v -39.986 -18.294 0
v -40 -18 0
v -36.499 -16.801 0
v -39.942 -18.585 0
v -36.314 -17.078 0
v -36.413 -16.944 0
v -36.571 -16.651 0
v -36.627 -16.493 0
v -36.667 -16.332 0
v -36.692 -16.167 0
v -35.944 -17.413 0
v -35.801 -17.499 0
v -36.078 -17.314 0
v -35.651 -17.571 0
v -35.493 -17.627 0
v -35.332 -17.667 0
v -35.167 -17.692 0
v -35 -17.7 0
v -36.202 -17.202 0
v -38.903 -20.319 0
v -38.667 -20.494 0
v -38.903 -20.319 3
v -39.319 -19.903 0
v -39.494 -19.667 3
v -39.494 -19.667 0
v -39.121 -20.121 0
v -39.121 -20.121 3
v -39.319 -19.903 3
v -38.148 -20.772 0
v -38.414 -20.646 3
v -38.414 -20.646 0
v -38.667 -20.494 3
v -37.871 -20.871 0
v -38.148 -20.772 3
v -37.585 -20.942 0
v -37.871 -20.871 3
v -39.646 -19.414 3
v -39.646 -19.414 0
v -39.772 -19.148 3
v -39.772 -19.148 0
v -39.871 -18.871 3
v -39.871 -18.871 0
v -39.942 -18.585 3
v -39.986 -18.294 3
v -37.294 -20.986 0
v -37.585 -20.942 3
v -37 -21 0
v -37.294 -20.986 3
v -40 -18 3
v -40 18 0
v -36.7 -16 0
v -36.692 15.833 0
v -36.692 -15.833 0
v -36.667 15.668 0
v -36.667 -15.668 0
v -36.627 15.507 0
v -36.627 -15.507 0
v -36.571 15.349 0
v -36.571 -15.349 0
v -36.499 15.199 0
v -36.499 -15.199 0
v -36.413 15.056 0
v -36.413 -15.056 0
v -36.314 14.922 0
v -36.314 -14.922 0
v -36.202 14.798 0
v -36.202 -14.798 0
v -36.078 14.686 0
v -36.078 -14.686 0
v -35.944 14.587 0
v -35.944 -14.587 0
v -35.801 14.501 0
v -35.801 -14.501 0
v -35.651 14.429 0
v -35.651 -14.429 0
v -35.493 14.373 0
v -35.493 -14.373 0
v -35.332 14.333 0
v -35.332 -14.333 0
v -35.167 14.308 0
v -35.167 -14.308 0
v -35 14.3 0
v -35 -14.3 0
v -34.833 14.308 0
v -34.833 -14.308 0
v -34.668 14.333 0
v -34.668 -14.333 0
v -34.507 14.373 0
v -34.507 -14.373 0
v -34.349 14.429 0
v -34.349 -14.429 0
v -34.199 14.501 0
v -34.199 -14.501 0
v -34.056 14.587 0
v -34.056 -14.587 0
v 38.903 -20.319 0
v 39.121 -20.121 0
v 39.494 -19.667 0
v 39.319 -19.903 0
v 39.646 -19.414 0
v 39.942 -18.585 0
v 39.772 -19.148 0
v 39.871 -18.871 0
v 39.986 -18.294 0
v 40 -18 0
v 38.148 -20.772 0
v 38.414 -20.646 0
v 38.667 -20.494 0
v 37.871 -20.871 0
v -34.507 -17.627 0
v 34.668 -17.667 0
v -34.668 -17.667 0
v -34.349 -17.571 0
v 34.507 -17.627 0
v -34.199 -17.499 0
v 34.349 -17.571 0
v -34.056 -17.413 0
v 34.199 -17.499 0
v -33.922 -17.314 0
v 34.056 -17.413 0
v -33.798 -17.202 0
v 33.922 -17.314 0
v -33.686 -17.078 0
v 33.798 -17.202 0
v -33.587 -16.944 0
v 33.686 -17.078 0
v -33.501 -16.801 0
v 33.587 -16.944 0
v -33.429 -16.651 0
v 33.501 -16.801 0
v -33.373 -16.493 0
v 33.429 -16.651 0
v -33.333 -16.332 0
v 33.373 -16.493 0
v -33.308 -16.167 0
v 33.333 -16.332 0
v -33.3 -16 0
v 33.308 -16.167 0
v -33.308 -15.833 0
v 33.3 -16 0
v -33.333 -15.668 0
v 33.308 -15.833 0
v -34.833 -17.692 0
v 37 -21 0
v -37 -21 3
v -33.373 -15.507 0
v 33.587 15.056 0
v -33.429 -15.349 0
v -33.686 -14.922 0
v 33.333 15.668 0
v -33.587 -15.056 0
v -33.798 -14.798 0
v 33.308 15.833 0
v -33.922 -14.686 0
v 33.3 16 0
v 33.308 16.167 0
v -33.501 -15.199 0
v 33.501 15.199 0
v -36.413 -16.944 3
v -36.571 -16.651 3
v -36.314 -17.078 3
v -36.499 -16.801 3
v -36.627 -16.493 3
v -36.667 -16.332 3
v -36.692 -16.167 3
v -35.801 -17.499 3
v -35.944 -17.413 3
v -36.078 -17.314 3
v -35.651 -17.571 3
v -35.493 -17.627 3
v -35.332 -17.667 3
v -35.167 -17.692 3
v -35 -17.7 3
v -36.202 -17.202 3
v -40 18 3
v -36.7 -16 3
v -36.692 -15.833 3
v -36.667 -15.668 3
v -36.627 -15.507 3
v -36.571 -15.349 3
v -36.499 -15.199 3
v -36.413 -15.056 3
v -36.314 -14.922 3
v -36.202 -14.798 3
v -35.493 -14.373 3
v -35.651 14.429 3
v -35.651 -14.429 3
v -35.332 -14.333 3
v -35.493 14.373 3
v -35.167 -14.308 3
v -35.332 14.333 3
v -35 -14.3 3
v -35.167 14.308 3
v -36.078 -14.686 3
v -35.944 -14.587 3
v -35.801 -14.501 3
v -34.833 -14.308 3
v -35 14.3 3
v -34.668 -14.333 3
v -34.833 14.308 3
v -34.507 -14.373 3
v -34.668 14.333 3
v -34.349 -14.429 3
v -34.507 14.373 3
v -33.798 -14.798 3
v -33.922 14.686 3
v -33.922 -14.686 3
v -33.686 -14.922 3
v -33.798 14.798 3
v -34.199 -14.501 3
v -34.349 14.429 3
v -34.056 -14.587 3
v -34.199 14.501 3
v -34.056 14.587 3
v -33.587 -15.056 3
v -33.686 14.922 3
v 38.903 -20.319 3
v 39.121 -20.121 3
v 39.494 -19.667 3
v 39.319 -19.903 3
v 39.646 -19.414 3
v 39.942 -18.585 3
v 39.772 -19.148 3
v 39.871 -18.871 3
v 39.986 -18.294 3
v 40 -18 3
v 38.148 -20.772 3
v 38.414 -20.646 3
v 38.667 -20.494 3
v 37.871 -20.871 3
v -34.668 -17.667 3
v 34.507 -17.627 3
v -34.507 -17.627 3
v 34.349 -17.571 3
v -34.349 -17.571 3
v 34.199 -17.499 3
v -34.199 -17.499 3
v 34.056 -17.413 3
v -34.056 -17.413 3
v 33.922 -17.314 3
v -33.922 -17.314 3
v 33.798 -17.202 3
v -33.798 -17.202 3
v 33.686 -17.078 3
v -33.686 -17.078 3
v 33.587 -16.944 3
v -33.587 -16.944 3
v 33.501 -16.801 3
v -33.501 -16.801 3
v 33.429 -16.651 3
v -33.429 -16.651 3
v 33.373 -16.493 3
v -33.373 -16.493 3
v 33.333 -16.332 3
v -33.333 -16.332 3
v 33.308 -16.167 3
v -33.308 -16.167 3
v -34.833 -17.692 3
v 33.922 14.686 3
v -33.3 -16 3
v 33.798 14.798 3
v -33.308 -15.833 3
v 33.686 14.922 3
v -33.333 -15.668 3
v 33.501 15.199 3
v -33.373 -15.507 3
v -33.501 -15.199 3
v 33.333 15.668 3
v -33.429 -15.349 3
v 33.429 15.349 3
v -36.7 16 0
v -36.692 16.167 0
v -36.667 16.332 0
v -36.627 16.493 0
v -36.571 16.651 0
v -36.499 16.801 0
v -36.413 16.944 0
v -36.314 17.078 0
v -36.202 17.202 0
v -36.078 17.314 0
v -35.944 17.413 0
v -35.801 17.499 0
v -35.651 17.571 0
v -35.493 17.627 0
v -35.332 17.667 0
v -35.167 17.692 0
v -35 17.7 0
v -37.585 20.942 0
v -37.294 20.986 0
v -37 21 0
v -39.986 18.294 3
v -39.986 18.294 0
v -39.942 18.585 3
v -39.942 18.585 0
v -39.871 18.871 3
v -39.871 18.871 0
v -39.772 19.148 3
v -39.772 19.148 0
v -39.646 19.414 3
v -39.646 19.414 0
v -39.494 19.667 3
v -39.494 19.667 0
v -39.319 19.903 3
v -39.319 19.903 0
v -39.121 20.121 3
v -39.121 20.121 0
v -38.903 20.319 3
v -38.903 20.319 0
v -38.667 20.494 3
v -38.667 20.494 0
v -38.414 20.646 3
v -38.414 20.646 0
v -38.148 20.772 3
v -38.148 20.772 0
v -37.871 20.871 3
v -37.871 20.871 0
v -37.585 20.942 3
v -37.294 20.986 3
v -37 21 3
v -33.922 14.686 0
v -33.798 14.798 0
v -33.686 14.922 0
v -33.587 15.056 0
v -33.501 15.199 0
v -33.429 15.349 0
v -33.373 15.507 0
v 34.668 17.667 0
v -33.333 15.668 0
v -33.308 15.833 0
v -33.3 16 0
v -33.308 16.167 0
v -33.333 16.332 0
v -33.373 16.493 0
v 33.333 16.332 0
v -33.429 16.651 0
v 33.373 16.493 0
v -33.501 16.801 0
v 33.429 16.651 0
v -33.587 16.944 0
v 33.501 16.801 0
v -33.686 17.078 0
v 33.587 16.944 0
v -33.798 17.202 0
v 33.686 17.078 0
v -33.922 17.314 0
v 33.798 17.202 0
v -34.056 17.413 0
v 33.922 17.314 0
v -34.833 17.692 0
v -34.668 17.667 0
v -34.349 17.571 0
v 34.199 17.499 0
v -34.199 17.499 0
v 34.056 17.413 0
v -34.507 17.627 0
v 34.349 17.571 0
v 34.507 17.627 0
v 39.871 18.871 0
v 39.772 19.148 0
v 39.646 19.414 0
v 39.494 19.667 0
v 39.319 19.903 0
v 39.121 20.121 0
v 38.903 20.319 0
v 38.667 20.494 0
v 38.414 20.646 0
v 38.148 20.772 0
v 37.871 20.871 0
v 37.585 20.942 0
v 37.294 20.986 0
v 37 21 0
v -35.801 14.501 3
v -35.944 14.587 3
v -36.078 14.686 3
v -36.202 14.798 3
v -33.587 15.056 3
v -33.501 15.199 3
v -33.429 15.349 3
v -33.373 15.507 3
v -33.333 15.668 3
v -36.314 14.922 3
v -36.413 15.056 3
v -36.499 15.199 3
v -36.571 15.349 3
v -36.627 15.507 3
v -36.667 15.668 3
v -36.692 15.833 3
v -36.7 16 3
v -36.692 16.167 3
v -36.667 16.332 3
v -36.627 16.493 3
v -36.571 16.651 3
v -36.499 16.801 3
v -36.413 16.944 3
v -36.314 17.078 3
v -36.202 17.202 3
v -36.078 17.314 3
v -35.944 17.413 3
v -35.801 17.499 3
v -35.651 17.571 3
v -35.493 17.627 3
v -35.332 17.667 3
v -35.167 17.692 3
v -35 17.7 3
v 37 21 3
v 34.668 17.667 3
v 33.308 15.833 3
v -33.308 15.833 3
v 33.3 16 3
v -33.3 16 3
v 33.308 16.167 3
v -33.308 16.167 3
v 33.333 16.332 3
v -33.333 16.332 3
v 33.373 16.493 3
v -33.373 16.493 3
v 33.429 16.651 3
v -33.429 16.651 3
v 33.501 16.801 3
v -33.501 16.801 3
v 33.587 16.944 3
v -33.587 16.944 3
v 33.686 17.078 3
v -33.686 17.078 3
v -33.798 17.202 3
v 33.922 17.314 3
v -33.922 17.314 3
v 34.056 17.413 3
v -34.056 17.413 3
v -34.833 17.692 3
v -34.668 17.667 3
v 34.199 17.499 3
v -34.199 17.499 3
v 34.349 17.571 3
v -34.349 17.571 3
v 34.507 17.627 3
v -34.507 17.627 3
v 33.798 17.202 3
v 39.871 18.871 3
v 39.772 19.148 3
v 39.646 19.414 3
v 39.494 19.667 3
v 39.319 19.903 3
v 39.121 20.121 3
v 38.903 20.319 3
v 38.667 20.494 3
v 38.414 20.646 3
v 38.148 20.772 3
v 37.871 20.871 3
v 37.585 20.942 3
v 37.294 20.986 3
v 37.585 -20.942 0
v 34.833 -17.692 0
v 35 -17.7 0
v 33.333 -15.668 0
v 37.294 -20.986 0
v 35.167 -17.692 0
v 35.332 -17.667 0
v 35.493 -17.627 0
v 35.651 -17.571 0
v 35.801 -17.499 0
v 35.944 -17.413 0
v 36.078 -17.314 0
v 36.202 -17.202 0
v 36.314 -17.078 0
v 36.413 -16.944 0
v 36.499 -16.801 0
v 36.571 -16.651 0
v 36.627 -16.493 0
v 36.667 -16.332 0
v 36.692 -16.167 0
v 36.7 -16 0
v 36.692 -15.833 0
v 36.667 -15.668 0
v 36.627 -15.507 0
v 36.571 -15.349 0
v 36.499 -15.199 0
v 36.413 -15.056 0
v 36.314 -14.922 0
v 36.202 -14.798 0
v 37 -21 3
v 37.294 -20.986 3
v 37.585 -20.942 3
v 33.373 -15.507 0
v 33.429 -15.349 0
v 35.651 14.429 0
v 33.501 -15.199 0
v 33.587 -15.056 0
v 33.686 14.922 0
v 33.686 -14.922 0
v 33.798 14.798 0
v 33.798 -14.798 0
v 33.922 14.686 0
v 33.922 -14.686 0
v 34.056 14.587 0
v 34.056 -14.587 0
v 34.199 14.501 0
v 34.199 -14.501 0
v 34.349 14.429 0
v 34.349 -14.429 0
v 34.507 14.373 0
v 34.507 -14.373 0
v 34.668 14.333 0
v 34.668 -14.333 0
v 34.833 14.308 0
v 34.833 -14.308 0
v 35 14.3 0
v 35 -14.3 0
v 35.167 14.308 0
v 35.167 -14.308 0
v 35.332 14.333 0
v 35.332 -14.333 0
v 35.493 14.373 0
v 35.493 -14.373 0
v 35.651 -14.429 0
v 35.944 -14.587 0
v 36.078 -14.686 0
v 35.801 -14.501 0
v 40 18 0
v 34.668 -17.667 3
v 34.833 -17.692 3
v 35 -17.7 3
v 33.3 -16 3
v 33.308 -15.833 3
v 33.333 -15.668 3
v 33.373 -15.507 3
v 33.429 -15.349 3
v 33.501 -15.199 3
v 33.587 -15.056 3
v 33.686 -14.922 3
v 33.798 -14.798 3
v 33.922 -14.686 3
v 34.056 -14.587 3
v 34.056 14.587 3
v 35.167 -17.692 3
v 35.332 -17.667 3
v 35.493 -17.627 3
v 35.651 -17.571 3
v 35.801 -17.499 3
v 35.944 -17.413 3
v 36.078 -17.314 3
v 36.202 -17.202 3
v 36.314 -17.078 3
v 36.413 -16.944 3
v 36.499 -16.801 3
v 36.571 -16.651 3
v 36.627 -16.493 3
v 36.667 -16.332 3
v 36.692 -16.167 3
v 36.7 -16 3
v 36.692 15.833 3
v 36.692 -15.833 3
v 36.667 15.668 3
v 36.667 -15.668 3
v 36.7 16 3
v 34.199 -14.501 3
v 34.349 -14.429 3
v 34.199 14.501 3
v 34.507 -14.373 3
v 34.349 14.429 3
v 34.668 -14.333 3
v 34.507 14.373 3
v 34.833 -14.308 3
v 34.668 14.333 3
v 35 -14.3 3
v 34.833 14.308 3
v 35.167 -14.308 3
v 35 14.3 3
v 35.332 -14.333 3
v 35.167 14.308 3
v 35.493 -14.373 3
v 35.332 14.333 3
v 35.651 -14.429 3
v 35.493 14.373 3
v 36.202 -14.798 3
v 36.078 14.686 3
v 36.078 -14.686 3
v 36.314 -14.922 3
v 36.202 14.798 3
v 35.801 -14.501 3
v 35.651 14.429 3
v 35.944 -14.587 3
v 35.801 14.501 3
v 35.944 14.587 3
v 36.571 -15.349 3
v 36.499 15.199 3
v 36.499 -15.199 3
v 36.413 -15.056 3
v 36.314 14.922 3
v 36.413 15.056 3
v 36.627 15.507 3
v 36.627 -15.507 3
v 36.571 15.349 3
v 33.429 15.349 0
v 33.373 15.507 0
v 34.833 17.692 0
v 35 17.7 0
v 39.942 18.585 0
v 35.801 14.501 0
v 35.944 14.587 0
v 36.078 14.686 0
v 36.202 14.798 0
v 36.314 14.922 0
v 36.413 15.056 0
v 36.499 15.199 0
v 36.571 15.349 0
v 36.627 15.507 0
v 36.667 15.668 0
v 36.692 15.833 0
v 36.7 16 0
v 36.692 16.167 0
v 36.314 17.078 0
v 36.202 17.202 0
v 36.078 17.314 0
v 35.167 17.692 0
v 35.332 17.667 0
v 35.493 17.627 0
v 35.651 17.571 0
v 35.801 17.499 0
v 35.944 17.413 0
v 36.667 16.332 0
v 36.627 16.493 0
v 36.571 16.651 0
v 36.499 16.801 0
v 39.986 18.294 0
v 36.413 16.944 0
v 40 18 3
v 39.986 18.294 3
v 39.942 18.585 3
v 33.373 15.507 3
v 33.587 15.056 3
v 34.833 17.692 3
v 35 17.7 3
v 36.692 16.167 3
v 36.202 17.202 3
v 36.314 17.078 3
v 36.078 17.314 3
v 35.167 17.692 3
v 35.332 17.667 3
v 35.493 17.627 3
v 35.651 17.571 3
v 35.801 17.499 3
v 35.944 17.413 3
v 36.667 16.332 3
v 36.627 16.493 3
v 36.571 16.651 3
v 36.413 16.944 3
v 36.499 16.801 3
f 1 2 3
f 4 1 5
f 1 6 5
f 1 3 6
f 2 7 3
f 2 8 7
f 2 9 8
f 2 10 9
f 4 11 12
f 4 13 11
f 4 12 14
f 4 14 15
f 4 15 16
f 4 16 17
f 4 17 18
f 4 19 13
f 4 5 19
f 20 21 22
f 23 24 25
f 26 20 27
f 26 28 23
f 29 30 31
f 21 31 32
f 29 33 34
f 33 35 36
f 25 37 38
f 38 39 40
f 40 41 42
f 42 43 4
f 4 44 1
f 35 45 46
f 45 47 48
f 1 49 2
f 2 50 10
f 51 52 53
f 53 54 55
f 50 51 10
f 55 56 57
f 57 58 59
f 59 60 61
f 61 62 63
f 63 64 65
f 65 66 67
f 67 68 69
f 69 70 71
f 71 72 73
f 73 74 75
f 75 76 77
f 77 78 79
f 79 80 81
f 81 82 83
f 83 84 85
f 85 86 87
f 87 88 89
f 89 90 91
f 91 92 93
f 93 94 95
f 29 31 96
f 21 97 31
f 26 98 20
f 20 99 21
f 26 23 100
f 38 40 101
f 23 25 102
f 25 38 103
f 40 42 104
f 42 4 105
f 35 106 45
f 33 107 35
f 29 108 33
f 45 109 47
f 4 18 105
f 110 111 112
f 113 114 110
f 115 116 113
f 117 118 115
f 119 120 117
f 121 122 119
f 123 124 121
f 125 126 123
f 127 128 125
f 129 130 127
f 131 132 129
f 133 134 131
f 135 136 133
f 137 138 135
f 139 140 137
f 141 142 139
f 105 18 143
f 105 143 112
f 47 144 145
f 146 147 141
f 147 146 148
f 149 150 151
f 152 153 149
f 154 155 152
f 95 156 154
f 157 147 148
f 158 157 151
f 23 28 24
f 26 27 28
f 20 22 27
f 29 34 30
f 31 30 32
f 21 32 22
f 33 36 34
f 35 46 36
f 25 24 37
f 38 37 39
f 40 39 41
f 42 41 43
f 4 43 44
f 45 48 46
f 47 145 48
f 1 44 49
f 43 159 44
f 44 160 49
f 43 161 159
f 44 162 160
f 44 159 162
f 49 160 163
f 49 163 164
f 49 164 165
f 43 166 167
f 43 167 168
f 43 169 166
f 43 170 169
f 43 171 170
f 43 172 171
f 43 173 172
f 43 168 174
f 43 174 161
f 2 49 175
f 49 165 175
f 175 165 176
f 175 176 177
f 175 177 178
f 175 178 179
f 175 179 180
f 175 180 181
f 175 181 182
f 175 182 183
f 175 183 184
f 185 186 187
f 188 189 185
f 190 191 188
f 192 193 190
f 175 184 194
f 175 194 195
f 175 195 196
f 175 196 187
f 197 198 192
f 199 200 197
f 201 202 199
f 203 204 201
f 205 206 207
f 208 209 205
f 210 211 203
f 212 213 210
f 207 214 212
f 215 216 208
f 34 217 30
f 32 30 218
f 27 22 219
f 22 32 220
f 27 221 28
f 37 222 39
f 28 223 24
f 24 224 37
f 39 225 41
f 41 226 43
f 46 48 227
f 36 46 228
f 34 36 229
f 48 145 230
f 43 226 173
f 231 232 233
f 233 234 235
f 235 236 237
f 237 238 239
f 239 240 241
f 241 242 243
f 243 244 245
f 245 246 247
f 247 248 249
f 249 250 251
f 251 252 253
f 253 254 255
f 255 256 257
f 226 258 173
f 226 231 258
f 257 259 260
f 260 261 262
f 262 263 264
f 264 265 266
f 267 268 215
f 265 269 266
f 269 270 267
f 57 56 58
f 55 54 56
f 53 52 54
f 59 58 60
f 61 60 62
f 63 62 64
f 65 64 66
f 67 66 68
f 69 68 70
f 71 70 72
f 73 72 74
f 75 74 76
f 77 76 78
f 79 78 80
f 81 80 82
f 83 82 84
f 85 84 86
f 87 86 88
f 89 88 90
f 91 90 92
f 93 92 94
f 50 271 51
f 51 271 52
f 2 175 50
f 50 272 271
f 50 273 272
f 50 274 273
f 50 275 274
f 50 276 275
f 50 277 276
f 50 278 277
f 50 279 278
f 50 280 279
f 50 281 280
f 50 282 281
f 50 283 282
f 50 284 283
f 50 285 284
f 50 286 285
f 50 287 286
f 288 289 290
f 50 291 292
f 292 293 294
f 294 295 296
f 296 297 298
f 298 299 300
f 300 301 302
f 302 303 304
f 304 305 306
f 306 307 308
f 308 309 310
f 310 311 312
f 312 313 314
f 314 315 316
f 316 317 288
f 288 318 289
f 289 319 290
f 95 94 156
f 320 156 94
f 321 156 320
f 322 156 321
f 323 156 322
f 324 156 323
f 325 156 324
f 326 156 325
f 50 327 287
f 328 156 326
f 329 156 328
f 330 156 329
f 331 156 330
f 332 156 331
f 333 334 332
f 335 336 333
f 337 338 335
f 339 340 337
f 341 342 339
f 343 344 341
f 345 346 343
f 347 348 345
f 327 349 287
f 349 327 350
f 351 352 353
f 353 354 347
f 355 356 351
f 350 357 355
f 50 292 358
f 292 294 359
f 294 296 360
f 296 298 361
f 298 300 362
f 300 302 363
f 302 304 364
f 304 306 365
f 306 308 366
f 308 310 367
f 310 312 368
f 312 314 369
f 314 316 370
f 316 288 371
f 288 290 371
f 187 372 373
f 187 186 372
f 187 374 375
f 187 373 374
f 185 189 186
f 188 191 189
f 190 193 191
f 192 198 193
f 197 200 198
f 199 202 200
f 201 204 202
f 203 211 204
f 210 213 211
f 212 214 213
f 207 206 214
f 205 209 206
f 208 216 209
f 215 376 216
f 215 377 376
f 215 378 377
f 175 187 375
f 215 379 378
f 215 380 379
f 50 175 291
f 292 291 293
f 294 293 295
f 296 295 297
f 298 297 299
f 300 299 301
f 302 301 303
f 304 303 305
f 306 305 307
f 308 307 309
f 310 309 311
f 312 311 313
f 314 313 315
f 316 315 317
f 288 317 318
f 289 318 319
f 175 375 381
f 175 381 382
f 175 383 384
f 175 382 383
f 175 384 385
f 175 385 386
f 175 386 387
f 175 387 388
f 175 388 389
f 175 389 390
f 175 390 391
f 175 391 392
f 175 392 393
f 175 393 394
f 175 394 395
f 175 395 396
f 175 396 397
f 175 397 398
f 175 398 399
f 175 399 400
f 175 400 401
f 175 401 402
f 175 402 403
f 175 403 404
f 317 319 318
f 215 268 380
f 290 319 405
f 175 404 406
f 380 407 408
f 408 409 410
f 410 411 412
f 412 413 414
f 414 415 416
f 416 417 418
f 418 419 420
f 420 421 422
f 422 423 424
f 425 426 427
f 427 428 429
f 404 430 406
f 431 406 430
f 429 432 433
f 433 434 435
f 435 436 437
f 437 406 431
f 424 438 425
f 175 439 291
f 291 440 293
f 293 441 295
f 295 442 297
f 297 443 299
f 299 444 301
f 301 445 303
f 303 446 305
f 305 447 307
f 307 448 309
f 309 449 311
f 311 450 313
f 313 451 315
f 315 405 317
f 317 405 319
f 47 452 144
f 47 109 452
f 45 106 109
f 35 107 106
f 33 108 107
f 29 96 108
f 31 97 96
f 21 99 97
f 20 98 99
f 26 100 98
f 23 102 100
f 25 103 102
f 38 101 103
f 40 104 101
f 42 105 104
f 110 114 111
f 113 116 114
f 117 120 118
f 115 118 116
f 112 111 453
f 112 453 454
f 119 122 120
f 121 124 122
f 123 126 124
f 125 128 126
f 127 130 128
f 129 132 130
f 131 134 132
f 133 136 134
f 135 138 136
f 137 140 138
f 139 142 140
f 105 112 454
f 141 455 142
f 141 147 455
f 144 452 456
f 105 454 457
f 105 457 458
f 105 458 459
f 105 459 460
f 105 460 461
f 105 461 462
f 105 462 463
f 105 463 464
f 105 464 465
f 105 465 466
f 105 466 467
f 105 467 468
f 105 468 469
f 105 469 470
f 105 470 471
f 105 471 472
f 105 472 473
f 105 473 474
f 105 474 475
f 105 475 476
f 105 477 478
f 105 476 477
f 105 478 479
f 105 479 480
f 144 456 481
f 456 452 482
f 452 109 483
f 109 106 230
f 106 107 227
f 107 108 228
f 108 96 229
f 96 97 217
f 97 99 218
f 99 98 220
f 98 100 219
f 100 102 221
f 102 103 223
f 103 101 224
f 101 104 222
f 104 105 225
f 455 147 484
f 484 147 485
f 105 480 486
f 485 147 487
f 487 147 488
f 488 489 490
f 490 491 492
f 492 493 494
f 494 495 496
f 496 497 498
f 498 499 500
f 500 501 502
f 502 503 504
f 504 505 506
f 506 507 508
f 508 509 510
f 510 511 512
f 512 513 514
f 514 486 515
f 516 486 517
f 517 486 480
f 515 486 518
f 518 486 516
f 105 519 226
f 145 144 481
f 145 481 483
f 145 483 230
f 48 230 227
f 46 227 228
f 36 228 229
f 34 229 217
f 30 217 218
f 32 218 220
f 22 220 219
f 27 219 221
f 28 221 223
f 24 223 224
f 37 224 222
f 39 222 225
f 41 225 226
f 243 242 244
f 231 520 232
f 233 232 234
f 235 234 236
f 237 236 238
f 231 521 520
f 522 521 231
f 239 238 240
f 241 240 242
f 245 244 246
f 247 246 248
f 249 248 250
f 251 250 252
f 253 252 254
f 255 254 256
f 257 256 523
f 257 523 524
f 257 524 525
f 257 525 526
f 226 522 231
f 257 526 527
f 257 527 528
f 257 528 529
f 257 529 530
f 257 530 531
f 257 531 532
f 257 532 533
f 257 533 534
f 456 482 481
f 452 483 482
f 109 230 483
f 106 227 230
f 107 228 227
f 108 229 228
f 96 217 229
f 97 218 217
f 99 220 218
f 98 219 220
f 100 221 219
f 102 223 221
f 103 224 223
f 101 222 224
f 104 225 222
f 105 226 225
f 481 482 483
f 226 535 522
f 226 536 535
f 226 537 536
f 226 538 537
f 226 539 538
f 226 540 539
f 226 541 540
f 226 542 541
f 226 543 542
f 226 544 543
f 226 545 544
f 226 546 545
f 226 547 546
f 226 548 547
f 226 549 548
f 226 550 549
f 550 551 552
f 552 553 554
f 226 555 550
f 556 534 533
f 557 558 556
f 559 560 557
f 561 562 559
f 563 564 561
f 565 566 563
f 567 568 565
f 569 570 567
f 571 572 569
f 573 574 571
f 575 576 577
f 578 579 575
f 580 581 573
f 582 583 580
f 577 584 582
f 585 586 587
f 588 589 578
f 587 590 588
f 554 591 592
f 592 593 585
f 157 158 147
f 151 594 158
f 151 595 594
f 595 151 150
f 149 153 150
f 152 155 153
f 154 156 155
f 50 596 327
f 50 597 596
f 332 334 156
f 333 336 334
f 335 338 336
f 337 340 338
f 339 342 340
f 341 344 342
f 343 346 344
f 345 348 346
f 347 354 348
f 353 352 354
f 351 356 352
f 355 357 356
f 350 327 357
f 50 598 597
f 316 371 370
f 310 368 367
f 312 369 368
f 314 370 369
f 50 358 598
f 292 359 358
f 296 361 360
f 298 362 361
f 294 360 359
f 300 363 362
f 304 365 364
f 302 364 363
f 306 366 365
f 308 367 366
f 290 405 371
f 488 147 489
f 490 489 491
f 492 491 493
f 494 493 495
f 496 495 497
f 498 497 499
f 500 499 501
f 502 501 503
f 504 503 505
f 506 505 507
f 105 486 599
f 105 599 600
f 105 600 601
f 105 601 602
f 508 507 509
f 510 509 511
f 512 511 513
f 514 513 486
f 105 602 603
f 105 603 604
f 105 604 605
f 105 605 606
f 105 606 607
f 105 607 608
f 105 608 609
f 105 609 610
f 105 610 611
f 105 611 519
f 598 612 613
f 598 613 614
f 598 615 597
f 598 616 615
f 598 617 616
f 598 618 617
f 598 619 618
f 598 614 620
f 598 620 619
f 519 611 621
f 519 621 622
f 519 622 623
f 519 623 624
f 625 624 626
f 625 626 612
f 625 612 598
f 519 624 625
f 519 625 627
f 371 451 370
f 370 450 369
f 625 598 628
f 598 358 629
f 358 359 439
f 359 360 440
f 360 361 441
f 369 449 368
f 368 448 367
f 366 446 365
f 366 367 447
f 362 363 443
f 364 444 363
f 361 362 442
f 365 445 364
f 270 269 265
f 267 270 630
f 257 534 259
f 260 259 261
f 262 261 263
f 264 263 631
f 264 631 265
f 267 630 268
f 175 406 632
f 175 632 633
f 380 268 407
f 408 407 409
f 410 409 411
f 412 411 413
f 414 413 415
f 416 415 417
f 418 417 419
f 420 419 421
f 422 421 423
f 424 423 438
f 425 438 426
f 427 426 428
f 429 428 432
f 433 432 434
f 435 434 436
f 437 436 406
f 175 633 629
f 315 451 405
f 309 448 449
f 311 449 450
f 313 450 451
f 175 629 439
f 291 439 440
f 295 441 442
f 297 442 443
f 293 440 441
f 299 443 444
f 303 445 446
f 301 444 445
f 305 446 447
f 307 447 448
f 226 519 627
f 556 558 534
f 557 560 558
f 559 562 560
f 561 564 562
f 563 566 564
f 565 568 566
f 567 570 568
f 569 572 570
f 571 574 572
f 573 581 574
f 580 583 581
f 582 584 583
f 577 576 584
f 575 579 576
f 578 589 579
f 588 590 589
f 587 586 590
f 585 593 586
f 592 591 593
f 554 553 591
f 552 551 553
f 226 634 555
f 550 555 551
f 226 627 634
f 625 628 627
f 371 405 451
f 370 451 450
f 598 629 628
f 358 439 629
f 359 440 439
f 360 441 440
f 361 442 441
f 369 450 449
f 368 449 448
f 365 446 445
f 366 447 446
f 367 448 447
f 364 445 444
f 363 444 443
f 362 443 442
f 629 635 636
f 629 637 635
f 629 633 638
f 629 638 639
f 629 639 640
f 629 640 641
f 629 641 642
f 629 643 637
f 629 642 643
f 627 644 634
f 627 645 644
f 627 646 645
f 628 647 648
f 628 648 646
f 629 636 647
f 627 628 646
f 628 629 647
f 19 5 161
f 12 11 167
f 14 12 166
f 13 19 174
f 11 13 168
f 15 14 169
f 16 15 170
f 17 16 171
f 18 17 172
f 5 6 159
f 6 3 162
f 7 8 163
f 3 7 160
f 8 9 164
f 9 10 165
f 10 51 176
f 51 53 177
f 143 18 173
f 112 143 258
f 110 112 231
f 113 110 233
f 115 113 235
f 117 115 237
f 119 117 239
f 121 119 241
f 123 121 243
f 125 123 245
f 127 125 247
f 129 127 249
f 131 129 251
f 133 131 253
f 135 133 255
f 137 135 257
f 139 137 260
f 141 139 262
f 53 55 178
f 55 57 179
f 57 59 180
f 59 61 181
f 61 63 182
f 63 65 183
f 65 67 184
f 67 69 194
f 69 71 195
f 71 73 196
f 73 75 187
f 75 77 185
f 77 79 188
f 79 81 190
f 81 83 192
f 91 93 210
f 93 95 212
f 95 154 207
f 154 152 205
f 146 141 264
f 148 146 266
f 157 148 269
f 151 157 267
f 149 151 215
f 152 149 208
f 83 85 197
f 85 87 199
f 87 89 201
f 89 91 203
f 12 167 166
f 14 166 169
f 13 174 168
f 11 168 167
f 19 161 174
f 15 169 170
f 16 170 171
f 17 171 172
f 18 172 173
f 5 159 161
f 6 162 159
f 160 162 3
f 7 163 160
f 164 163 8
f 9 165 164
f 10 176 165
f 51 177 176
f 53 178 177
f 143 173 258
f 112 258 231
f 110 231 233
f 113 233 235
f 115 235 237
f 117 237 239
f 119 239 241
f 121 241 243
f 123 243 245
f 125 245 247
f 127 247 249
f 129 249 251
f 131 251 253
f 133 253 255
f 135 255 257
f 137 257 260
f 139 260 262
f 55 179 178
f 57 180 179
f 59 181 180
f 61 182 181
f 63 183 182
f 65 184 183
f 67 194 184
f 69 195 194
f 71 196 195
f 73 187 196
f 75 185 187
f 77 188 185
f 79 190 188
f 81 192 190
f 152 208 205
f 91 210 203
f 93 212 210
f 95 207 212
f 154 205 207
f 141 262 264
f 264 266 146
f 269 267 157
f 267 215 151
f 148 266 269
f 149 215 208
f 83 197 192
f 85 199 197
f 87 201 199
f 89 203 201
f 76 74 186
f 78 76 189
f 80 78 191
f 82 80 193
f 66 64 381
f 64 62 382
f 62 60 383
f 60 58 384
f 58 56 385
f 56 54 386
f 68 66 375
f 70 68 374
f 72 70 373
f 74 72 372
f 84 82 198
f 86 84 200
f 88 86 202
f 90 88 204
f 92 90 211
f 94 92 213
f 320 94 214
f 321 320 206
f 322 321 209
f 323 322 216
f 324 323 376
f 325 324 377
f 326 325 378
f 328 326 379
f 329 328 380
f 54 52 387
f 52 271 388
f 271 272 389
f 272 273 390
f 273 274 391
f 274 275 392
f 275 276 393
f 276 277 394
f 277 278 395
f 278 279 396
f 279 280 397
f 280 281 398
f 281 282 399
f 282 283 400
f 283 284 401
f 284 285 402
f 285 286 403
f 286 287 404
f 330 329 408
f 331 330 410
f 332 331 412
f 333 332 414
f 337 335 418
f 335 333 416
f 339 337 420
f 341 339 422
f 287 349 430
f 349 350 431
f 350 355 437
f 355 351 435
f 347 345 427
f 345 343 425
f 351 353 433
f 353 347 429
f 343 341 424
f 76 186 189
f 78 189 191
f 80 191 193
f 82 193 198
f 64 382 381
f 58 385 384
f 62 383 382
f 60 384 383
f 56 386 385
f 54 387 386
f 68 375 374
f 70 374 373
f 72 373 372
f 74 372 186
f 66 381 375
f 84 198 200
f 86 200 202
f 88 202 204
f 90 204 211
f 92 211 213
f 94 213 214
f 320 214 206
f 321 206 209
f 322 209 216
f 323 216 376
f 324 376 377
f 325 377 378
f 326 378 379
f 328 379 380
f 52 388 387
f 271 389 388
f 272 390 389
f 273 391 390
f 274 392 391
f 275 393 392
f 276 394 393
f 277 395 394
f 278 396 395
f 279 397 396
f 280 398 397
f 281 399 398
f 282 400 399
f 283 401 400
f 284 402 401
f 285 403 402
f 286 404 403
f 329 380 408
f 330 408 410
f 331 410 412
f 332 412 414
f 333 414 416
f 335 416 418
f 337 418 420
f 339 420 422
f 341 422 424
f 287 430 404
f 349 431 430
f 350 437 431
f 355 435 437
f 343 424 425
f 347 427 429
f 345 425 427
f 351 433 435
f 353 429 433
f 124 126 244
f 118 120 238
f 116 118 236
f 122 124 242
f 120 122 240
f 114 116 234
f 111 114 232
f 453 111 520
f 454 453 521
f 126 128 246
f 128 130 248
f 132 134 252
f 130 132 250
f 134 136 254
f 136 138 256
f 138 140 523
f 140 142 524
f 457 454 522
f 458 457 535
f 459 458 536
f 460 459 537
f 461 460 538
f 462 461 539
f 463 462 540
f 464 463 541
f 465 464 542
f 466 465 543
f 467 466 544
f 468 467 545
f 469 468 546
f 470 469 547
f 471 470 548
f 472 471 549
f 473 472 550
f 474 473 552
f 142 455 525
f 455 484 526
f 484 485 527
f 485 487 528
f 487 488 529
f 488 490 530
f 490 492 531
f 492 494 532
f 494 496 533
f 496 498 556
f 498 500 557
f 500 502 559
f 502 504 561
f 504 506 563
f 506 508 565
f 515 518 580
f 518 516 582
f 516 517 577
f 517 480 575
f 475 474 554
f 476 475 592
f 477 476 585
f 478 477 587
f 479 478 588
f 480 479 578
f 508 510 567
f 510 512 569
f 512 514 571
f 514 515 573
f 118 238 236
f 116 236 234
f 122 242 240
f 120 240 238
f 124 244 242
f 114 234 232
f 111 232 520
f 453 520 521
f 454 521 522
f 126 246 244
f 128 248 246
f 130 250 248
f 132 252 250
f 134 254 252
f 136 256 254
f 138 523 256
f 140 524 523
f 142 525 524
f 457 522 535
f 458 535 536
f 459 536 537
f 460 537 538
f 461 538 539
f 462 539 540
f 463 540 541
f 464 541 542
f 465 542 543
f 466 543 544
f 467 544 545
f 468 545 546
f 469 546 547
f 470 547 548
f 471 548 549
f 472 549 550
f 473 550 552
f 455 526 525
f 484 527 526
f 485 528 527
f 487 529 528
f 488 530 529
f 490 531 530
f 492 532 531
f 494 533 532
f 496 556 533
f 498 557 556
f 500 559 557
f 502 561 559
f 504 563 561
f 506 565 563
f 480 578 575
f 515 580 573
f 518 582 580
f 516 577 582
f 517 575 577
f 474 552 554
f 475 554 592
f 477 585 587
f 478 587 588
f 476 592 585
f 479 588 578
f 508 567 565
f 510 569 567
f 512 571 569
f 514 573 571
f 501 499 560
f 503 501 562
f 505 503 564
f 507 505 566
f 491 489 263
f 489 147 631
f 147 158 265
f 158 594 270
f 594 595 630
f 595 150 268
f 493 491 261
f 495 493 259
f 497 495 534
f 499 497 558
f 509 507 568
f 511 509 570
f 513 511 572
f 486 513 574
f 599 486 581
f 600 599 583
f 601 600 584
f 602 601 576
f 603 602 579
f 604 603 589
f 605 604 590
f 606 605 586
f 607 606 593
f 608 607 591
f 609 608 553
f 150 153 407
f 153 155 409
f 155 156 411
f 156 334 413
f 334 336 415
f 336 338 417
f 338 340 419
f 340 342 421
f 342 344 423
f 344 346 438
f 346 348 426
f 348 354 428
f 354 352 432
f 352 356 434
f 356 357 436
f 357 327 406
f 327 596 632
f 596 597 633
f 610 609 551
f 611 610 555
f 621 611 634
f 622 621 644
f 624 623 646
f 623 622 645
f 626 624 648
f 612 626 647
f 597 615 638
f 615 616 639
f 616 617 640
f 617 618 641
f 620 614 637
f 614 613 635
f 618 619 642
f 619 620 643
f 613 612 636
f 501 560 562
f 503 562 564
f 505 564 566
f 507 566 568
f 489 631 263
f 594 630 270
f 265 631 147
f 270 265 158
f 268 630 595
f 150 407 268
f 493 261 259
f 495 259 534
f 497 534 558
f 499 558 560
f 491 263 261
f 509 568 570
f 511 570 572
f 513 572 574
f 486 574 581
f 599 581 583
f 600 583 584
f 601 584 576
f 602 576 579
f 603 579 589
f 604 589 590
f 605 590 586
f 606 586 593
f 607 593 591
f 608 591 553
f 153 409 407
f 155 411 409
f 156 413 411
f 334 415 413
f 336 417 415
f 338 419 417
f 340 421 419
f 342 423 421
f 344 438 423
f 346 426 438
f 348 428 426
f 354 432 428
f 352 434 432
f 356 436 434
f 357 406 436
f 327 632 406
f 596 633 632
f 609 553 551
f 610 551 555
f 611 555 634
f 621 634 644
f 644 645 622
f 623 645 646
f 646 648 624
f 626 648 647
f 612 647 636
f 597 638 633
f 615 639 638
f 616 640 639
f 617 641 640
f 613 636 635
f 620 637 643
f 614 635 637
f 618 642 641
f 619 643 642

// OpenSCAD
// VMax external draft 1; mm; generated by external-enclosure-v1.py
difference(){difference(){difference(){difference(){linear_extrude(height=3)polygon(points=[[40.0, 18.0], [39.98555418001659, 18.294051420988684], [39.94235584120969, 18.585270966048384], [39.870821007196625, 18.870854031763386], [39.77163859753386, 19.14805029709527], [39.64576379304506, 19.414190210477994], [39.49440883690764, 19.666710699058807], [39.31903136008821, 19.903179852490936], [39.121320343559645, 20.121320343559642], [38.903179852490936, 20.31903136008821], [38.666710699058804, 20.494408836907635], [38.41419021047799, 20.645763793045067], [38.14805029709527, 20.771638597533858], [37.870854031763386, 20.870821007196625], [37.585270966048384, 20.94235584120969], [37.29405142098868, 20.985554180016592], [37.0, 21.0], [-37.0, 21.0], [-37.29405142098868, 20.985554180016592], [-37.585270966048384, 20.94235584120969], [-37.870854031763386, 20.870821007196625], [-38.14805029709527, 20.771638597533858], [-38.41419021047799, 20.645763793045067], [-38.666710699058804, 20.494408836907635], [-38.903179852490936, 20.31903136008821], [-39.121320343559645, 20.121320343559642], [-39.31903136008821, 19.903179852490936], [-39.49440883690764, 19.666710699058807], [-39.64576379304506, 19.414190210477994], [-39.77163859753386, 19.14805029709527], [-39.870821007196625, 18.870854031763386], [-39.94235584120969, 18.585270966048384], [-39.98555418001659, 18.294051420988684], [-40.0, 18.0], [-40.0, -18.0], [-39.98555418001659, -18.29405142098868], [-39.94235584120969, -18.585270966048384], [-39.870821007196625, -18.870854031763386], [-39.77163859753386, -19.14805029709527], [-39.64576379304506, -19.414190210477994], [-39.49440883690764, -19.666710699058807], [-39.31903136008821, -19.903179852490936], [-39.121320343559645, -20.121320343559642], [-38.903179852490936, -20.31903136008821], [-38.666710699058804, -20.494408836907635], [-38.41419021047799, -20.645763793045063], [-38.14805029709527, -20.77163859753386], [-37.870854031763386, -20.870821007196625], [-37.585270966048384, -20.94235584120969], [-37.29405142098868, -20.985554180016592], [-37.0, -21.0], [37.0, -21.0], [37.29405142098868, -20.985554180016592], [37.585270966048384, -20.94235584120969], [37.870854031763386, -20.870821007196625], [38.14805029709527, -20.771638597533858], [38.41419021047799, -20.645763793045067], [38.666710699058804, -20.49440883690764], [38.903179852490936, -20.31903136008821], [39.121320343559645, -20.121320343559642], [39.31903136008821, -19.903179852490936], [39.49440883690764, -19.666710699058807], [39.64576379304506, -19.414190210477994], [39.77163859753386, -19.148050297095267], [39.870821007196625, -18.870854031763386], [39.94235584120969, -18.585270966048387], [39.98555418001659, -18.29405142098868], [40.0, -18.0]]);translate([-35,-16,-1]){cylinder(h=5,r=1.7,$fn=64);}}translate([-35,16,-1]){cylinder(h=5,r=1.7,$fn=64);}}translate([35,-16,-1]){cylinder(h=5,r=1.7,$fn=64);}}translate([35,16,-1]){cylinder(h=5,r=1.7,$fn=64);}}
